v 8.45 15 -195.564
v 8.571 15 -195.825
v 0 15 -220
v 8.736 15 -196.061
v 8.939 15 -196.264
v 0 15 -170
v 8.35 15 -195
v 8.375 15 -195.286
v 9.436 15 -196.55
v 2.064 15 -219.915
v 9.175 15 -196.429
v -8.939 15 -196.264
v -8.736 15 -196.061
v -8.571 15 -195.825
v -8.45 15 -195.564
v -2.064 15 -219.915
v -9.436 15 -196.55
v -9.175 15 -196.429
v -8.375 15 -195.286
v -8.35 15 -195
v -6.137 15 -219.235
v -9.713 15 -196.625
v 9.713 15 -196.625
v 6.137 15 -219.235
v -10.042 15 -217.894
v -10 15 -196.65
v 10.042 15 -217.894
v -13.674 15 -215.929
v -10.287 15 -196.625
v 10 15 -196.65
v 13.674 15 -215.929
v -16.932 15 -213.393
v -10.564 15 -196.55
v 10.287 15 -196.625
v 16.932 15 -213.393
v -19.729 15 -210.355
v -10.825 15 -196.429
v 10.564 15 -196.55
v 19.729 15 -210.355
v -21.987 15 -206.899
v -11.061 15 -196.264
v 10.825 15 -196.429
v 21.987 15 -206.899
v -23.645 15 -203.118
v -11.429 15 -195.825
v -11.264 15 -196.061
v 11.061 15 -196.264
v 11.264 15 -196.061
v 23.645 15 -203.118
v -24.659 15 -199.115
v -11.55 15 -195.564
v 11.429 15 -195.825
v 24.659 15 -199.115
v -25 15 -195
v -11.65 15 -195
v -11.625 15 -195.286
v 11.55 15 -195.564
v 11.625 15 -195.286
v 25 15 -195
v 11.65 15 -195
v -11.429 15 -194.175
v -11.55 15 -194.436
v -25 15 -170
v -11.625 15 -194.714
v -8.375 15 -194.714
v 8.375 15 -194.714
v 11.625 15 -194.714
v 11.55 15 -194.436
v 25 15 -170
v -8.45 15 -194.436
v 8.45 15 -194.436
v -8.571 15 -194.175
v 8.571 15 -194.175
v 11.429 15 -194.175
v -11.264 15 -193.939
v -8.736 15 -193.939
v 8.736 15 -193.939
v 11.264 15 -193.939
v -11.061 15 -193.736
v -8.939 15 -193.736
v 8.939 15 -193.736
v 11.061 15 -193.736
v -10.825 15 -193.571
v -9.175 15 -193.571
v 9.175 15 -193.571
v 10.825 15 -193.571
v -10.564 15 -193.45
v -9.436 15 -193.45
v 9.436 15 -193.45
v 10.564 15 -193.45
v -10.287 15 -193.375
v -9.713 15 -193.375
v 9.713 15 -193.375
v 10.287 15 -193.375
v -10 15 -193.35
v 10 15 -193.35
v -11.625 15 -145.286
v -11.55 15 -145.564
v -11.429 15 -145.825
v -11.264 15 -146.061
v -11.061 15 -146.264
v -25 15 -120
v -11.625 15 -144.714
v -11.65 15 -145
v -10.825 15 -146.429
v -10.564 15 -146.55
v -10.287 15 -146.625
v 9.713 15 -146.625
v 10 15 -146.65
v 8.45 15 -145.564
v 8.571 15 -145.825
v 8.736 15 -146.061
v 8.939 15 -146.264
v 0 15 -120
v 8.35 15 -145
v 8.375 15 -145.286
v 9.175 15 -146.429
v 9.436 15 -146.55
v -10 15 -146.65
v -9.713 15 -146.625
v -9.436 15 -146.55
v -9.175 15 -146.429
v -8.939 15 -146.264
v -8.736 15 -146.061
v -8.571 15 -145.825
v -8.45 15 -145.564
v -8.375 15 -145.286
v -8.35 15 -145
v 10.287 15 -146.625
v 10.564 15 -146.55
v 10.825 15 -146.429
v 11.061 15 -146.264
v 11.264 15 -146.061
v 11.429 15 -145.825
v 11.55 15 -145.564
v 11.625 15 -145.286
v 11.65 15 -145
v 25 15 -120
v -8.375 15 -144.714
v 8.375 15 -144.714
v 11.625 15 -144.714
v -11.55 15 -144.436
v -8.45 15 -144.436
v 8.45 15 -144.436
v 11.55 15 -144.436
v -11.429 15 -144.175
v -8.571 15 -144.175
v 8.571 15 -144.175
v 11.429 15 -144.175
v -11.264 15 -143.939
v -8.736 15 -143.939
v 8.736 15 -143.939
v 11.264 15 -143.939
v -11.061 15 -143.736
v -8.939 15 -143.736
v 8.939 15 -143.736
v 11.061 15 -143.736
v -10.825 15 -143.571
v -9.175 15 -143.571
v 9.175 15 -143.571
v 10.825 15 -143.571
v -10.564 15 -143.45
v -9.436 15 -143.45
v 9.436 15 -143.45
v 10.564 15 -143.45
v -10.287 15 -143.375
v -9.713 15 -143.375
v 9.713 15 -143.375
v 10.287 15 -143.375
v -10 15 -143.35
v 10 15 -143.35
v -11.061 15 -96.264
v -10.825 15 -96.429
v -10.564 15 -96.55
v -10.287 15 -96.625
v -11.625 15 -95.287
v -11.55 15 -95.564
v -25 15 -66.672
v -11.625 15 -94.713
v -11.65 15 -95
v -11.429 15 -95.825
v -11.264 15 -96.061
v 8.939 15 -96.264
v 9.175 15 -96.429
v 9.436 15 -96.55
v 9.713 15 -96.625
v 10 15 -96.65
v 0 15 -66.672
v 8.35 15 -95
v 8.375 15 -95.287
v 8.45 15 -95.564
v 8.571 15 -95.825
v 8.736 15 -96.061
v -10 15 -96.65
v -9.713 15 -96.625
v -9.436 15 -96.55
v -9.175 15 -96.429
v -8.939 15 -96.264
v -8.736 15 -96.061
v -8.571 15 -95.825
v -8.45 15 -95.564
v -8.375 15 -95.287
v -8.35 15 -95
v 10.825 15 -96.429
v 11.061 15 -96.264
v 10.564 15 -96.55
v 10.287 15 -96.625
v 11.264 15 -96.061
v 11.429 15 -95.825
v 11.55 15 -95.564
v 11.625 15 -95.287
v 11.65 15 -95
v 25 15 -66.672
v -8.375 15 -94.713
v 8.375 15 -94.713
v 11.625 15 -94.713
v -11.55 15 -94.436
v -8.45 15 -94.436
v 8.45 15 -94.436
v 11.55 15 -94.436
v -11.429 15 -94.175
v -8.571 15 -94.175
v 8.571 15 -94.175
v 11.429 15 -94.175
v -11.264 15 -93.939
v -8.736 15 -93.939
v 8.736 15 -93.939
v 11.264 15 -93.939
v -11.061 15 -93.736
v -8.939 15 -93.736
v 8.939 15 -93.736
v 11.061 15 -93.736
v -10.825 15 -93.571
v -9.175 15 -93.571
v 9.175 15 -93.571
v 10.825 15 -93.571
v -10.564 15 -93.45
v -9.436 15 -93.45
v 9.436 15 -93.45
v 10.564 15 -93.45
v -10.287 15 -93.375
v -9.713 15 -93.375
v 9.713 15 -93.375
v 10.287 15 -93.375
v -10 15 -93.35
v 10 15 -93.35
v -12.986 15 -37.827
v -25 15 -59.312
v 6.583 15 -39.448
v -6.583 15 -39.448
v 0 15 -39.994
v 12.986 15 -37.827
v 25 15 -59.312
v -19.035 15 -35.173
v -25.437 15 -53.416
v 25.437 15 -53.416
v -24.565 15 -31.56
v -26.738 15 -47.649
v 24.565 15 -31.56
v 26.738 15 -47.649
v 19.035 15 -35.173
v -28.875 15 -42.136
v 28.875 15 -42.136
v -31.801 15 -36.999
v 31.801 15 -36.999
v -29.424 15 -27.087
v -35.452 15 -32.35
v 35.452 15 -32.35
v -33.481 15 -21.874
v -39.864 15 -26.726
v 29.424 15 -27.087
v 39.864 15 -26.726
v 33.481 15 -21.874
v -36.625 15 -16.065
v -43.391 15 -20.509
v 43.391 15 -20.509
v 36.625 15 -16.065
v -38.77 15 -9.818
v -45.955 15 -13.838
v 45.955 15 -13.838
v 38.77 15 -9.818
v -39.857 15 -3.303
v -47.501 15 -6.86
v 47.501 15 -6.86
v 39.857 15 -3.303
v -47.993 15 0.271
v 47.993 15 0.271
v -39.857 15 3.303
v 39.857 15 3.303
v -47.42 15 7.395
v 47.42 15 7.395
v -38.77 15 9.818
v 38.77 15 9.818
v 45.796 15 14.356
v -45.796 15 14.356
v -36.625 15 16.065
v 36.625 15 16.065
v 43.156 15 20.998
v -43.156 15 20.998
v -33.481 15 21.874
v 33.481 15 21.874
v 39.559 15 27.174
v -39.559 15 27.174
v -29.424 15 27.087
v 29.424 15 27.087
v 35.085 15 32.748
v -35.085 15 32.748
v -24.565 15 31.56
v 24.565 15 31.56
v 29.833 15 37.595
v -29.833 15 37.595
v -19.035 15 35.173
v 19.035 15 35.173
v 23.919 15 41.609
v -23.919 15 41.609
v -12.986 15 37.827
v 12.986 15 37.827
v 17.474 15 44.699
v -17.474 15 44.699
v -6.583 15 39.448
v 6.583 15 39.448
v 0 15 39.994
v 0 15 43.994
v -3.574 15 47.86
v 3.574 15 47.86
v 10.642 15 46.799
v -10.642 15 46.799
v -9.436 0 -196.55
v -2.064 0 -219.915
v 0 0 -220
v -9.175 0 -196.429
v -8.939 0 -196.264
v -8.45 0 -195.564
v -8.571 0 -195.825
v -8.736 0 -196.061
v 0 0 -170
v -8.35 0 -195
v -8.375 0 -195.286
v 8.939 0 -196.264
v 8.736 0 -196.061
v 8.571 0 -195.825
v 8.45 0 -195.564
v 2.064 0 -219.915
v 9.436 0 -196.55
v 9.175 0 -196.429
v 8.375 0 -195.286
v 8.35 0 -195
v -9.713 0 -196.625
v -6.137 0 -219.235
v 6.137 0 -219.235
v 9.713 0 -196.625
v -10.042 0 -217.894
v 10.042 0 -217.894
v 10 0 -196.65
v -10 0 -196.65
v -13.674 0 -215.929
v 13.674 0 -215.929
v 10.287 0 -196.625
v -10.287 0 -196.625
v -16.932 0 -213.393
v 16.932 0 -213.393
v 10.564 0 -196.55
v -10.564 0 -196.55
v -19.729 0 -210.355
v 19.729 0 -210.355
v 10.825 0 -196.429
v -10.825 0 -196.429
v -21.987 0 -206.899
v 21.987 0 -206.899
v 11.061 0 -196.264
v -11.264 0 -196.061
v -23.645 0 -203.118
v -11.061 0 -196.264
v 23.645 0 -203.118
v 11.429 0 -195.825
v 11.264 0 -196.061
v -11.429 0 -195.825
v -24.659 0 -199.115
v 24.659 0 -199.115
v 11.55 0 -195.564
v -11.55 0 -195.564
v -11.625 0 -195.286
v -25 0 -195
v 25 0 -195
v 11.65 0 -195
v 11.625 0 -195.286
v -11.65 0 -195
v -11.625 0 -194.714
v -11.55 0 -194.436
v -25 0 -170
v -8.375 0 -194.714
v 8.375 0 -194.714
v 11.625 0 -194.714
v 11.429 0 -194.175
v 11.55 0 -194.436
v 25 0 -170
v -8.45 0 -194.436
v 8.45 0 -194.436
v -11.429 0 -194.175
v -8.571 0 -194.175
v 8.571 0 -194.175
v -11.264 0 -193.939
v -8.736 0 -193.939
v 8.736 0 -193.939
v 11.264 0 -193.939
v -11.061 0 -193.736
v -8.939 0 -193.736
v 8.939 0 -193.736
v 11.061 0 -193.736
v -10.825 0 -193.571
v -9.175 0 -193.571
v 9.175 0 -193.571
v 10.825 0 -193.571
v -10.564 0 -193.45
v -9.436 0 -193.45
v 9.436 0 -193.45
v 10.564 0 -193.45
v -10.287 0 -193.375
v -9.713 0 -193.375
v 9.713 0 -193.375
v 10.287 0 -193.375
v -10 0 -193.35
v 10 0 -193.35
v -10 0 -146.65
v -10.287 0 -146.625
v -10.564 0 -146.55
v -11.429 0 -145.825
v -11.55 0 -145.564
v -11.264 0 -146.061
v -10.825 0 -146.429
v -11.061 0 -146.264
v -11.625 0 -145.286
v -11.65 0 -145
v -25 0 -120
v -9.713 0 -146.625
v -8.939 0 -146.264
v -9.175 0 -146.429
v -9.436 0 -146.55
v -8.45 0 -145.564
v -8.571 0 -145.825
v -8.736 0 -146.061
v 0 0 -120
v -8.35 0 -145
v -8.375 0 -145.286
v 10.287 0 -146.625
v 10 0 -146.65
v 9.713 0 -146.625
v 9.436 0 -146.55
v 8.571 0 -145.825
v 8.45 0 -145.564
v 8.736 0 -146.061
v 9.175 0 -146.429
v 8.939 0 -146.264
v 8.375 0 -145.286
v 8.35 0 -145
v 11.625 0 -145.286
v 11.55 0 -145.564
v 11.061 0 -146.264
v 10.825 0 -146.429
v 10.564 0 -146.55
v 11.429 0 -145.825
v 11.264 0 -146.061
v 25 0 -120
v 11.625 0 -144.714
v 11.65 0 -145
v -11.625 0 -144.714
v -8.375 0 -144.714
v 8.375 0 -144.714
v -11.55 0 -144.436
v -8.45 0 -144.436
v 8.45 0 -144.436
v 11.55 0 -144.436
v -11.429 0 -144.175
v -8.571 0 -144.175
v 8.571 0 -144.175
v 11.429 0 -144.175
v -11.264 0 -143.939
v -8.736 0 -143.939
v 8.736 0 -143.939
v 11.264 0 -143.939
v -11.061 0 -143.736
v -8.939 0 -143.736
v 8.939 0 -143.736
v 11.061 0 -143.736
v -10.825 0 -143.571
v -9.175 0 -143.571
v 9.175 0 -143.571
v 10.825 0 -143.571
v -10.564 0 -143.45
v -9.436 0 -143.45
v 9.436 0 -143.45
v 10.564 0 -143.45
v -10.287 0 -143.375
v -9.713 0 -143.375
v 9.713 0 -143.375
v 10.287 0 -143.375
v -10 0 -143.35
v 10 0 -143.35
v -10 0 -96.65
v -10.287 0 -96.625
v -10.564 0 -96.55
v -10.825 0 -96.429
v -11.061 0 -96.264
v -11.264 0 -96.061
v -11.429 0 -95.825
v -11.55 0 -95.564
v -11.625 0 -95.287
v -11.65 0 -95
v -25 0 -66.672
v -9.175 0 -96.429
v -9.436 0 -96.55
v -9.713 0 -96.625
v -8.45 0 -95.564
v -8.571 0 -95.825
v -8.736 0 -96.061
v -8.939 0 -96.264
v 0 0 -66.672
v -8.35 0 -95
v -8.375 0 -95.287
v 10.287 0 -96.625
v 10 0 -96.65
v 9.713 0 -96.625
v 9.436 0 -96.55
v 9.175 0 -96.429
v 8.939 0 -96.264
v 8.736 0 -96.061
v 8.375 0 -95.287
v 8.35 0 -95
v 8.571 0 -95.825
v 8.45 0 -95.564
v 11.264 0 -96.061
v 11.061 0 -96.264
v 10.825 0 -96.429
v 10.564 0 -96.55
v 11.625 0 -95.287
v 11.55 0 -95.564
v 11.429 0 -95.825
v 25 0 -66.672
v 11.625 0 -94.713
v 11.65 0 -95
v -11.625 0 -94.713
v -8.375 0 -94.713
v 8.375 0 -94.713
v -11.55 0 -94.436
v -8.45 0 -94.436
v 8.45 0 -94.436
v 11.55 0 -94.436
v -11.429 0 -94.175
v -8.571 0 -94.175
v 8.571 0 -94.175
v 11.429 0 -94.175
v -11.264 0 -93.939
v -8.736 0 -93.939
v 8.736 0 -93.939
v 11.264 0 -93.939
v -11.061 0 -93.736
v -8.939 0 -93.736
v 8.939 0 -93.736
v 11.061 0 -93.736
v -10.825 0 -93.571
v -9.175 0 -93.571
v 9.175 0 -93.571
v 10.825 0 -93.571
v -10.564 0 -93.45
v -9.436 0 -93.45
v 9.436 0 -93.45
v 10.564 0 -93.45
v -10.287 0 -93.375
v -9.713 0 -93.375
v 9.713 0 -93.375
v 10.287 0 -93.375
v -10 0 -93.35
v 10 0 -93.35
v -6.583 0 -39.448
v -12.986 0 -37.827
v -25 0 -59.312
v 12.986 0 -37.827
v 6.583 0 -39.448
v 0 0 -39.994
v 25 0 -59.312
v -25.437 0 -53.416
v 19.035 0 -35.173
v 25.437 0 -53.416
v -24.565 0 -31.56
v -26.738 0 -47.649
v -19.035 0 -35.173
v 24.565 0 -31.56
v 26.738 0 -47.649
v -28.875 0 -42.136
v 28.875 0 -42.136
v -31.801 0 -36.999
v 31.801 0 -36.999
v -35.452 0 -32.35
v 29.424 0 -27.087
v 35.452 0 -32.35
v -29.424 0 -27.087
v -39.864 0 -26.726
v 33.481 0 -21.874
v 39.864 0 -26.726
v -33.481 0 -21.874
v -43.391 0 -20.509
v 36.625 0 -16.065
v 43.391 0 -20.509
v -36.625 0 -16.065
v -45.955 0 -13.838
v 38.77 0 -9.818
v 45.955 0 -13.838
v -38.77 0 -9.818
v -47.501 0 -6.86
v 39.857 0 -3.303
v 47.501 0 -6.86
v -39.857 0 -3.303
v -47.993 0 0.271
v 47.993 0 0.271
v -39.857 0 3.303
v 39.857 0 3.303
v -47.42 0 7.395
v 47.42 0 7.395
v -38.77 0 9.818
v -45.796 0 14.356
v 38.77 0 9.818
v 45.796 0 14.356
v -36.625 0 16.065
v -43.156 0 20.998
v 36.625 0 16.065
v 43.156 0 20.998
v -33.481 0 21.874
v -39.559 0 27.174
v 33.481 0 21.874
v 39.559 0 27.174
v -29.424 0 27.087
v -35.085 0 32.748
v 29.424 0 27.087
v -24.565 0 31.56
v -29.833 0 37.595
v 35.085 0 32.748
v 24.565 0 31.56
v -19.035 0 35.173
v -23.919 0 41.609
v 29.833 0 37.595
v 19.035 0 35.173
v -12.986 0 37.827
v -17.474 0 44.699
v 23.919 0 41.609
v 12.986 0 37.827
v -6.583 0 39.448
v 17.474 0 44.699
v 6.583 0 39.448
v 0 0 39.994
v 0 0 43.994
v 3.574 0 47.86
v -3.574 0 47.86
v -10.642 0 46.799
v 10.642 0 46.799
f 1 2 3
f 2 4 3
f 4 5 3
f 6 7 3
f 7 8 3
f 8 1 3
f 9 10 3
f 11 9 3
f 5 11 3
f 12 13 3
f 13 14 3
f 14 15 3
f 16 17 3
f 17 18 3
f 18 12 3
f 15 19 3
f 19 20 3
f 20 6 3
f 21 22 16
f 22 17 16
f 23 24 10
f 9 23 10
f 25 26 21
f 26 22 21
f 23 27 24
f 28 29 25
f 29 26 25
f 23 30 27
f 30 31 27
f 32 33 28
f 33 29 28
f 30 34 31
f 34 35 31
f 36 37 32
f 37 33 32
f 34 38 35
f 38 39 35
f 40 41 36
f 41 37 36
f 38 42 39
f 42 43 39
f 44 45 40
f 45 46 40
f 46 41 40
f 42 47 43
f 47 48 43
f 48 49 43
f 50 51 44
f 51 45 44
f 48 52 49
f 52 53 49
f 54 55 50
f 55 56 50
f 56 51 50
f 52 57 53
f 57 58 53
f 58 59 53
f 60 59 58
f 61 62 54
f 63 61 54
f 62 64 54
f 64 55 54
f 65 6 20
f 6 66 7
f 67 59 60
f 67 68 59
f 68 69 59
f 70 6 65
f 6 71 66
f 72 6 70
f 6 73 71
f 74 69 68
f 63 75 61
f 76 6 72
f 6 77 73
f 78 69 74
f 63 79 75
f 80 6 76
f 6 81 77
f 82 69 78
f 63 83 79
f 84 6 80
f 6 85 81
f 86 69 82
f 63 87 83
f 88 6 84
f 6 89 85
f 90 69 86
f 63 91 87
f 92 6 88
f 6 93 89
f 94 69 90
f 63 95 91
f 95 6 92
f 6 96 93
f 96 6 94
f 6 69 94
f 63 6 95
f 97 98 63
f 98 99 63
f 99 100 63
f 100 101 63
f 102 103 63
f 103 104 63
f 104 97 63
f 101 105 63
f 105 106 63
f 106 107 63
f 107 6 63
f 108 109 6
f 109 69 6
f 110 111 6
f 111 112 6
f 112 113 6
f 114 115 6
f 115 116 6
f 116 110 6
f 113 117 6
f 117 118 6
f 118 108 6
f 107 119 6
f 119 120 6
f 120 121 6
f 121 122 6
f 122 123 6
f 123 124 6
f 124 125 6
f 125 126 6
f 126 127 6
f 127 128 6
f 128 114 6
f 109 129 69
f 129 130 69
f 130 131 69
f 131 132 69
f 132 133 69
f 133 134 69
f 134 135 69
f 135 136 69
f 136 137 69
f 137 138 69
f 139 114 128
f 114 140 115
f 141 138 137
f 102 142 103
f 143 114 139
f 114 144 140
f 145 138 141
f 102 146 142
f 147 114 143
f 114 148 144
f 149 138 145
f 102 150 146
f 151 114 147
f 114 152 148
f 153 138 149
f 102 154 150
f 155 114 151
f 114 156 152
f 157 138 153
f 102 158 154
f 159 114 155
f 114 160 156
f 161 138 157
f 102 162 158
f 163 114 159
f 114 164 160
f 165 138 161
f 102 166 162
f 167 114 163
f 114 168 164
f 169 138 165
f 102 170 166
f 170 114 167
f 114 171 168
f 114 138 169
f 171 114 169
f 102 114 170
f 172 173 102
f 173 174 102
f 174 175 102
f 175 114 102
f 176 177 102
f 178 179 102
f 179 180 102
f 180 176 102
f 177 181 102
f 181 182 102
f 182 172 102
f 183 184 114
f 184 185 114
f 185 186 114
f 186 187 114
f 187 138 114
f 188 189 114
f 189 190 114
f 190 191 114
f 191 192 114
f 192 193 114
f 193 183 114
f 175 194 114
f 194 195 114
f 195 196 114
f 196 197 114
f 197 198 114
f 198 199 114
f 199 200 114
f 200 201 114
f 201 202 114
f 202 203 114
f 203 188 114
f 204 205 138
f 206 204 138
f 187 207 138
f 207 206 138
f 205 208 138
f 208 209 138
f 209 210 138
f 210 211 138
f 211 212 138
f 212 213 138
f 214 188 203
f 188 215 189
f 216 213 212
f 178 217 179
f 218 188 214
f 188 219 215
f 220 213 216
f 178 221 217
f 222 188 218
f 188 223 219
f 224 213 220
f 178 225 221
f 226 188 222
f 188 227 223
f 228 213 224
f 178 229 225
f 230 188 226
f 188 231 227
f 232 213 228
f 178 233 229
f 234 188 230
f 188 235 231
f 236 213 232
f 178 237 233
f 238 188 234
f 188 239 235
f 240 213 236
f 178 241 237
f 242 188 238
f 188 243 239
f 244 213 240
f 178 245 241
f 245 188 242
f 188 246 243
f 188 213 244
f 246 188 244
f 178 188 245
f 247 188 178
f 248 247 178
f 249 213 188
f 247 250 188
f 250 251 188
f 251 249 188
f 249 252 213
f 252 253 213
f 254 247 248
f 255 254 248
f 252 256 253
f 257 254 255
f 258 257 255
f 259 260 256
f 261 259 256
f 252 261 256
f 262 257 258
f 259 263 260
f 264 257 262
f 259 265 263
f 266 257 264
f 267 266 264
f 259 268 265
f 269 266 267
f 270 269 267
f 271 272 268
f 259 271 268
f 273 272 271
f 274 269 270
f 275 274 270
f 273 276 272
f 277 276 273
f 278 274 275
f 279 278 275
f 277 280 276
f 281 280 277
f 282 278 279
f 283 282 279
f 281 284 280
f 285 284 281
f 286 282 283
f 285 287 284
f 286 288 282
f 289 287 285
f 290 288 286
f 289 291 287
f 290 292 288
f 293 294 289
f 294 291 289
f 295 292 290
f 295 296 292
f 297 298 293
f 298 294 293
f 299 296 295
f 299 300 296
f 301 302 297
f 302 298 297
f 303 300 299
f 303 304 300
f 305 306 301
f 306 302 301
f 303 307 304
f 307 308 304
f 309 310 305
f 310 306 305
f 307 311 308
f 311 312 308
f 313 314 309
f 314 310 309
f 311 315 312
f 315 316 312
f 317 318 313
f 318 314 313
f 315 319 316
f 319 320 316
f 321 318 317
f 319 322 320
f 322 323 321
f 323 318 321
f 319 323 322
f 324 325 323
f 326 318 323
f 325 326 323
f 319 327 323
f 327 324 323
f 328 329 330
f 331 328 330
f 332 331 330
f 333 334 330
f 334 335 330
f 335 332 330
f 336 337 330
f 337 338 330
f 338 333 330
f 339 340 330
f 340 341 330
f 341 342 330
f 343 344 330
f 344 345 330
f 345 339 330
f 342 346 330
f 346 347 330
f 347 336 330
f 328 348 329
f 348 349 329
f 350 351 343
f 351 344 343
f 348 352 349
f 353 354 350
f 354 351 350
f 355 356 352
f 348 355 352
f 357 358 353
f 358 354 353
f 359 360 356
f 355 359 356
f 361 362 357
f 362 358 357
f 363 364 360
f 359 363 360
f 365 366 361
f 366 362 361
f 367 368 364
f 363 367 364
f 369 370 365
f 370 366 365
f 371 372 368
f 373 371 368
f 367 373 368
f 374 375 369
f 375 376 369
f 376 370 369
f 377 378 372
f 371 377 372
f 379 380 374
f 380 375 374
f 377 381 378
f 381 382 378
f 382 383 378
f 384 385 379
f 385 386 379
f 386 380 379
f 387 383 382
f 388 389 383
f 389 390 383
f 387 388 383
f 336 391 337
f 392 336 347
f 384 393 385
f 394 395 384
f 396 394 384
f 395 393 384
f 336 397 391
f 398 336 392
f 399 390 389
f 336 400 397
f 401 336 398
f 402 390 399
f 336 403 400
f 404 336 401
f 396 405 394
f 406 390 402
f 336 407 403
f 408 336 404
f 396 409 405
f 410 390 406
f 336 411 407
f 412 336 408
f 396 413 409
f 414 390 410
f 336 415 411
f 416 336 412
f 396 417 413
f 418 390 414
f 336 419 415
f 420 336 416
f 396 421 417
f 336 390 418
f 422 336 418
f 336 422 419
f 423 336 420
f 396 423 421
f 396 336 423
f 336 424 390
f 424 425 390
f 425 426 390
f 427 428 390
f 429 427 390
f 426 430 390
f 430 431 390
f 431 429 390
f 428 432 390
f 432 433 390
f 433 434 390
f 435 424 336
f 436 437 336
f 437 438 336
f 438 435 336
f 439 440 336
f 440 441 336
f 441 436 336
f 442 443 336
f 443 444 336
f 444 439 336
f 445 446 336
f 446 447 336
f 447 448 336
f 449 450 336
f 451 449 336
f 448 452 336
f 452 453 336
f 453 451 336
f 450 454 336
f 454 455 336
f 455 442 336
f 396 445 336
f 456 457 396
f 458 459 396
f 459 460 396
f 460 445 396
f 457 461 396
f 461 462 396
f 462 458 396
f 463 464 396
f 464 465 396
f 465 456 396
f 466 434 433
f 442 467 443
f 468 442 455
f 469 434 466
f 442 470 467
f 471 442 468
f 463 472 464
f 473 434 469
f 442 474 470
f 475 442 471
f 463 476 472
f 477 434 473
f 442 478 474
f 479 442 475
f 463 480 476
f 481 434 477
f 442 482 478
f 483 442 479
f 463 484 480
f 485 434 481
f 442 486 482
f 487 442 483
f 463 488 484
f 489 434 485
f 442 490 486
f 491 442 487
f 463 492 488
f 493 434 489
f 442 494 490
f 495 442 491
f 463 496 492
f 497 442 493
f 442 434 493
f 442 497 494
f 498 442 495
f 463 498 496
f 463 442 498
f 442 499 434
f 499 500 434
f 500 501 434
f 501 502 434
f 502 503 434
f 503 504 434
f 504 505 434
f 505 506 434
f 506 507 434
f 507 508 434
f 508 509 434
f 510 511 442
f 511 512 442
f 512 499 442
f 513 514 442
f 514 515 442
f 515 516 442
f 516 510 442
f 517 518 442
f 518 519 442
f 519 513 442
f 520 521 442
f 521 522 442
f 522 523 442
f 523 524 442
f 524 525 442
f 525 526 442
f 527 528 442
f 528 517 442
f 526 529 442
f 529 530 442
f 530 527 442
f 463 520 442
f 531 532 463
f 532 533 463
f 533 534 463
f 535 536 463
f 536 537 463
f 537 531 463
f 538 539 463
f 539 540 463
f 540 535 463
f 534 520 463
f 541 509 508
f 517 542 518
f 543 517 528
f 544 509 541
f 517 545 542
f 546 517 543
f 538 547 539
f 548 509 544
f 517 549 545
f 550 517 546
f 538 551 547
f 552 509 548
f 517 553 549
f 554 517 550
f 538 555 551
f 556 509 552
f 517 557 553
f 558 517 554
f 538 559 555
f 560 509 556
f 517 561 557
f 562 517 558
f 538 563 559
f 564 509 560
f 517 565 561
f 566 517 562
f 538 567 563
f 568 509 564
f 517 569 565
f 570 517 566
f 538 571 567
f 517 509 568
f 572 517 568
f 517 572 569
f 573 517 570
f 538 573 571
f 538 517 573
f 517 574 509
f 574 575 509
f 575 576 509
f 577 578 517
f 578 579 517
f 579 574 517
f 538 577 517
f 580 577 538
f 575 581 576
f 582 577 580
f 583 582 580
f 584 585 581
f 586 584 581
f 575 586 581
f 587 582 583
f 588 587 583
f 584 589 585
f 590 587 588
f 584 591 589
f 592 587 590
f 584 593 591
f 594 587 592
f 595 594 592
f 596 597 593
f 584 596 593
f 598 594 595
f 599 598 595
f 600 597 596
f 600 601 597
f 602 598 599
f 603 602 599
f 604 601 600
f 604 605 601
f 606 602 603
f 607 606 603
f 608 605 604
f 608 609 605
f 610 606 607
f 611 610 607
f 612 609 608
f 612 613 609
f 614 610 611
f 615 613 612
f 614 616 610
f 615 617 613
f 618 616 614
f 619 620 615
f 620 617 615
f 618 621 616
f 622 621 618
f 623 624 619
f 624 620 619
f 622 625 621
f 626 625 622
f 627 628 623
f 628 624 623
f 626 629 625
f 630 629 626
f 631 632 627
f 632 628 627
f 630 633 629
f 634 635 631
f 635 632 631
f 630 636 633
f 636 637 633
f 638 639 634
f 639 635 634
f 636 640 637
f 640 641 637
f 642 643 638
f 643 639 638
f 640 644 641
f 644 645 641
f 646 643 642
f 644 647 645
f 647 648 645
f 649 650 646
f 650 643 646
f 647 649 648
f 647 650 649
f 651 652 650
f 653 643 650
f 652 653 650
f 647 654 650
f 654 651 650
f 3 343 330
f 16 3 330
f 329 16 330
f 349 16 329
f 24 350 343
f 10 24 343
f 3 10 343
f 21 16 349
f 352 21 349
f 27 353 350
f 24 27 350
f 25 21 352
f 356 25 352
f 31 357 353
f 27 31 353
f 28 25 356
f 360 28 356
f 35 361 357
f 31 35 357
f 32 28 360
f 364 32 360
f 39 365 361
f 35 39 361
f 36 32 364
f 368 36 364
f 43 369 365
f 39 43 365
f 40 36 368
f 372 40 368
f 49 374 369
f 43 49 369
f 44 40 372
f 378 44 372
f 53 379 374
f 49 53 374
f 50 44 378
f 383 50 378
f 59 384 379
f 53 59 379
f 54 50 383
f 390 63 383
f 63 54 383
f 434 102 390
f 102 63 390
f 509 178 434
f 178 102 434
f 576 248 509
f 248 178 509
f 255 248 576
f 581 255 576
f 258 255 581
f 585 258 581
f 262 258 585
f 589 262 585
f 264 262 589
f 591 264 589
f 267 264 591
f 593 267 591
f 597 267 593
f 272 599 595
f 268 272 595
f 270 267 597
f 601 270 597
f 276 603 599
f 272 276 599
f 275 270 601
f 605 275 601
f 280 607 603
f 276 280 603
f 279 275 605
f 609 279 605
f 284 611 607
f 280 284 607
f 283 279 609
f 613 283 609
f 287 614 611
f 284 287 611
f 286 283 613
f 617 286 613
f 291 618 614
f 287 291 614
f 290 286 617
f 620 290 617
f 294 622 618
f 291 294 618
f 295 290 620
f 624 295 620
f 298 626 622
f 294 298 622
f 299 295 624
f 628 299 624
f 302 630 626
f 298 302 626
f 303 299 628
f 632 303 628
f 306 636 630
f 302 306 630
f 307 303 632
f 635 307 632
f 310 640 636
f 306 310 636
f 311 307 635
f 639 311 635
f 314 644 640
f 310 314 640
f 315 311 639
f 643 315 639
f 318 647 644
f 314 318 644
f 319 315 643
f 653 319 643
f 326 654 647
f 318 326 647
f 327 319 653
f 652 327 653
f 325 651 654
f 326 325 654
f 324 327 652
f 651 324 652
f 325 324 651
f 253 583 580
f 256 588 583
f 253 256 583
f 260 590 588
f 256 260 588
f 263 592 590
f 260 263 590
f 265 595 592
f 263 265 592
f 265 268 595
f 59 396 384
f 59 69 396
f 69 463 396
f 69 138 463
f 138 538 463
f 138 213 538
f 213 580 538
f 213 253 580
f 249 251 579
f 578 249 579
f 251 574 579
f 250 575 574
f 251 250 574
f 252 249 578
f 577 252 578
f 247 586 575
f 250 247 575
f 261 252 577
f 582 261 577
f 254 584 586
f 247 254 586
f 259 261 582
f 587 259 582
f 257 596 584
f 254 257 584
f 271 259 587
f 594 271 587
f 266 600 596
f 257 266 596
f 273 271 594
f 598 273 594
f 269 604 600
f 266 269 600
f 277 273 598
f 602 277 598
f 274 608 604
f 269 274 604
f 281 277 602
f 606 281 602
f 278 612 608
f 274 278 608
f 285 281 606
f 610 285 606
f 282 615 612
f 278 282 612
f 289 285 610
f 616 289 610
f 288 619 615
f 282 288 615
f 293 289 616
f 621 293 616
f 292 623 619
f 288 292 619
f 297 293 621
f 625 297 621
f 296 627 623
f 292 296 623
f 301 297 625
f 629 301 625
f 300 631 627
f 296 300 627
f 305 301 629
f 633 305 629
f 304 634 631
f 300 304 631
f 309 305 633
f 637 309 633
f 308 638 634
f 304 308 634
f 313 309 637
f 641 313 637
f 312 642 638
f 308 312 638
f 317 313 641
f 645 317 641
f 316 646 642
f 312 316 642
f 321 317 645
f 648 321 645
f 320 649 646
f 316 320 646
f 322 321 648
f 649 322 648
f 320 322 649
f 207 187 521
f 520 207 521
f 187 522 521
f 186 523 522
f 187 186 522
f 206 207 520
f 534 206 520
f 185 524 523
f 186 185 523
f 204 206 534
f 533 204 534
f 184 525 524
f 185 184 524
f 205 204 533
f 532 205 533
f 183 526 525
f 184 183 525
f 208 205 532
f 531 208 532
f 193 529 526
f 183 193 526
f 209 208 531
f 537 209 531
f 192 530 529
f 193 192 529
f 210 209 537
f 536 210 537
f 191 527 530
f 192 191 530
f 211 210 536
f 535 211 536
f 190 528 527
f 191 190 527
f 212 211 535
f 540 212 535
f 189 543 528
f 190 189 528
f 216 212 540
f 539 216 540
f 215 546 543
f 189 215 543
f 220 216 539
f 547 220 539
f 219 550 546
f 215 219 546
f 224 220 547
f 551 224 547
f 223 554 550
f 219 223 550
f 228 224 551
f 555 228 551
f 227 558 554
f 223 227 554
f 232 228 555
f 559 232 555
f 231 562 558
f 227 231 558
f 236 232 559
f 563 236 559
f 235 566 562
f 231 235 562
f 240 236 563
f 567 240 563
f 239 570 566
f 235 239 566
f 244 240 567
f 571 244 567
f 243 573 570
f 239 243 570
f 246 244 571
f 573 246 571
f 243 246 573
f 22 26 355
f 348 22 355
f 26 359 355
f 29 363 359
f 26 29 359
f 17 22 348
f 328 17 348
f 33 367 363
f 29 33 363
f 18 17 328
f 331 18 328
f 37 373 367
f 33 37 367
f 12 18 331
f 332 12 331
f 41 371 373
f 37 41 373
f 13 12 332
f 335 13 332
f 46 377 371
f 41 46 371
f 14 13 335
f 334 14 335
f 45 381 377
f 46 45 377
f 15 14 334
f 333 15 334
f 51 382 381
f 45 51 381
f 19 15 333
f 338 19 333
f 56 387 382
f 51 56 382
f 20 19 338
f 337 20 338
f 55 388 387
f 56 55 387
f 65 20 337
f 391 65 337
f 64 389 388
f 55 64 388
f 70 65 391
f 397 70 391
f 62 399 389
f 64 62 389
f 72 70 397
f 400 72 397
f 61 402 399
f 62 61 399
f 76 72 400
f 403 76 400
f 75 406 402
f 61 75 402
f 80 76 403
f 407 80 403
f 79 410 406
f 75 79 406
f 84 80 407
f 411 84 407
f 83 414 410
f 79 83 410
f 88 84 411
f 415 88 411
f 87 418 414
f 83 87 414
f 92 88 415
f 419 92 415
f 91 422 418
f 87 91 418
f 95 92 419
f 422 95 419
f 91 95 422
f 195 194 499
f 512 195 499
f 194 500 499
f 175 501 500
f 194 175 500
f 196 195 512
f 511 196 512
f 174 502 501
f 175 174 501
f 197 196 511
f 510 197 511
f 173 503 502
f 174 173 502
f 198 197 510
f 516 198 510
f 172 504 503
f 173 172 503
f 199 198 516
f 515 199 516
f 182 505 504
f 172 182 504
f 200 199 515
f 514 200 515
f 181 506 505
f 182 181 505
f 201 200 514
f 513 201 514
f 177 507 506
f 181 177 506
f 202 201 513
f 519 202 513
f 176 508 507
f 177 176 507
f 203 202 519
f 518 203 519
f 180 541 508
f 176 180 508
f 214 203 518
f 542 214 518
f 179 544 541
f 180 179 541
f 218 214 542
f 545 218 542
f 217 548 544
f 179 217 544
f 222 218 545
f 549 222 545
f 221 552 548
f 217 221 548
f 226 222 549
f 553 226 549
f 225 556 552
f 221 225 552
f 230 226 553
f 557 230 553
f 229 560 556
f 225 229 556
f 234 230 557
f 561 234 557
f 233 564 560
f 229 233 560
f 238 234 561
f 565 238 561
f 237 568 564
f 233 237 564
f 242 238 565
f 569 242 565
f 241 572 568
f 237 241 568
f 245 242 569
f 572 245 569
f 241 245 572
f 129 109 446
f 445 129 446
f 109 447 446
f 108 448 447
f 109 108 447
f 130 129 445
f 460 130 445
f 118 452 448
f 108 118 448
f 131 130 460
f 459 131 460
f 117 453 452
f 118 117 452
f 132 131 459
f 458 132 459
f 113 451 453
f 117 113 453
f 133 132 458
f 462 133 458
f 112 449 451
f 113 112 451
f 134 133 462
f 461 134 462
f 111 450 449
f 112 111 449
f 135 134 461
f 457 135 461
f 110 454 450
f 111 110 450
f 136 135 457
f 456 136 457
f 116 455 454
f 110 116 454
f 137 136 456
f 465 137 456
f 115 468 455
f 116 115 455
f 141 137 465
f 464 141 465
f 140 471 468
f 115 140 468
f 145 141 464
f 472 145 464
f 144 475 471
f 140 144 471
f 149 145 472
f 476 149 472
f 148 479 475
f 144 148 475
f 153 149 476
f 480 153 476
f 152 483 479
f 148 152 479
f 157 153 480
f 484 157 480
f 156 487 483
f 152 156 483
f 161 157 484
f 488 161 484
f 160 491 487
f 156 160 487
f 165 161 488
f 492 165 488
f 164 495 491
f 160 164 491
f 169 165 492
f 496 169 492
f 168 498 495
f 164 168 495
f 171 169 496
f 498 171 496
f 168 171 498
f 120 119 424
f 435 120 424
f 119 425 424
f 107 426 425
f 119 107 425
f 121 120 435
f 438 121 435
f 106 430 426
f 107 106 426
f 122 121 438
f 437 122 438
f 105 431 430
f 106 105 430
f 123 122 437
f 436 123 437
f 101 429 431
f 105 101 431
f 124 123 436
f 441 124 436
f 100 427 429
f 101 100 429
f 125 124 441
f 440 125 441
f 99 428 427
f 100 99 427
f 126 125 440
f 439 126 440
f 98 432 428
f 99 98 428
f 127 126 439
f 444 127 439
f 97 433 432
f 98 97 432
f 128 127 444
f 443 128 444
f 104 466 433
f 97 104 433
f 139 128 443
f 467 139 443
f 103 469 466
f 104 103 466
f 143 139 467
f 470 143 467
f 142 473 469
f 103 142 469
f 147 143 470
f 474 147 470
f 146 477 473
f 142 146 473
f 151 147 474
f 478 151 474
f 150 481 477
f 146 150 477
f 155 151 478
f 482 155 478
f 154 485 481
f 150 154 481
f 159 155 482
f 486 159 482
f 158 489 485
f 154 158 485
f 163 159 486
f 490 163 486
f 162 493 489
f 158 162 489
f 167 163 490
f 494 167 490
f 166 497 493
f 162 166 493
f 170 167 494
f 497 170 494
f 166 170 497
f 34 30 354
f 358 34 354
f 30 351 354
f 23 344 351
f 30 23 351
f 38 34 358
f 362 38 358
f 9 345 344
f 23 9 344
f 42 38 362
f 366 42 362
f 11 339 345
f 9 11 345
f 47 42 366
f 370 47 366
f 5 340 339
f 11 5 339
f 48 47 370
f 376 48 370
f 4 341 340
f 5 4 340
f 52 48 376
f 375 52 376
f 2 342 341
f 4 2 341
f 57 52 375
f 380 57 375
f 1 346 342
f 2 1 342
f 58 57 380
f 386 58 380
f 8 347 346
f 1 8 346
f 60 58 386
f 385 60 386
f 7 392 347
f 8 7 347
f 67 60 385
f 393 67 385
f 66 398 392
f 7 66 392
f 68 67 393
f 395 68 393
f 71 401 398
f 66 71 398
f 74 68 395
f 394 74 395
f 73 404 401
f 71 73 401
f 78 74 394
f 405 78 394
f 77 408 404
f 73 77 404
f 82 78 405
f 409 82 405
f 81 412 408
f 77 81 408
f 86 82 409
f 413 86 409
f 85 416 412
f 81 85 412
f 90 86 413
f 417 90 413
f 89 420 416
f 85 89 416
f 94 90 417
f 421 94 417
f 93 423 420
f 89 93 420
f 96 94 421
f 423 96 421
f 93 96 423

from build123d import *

# Parameters (mm, degrees)
SKETCH1_R           = 39.9935
BOSS_EXTRUDE1_DEPTH = 15
SKETCH2_R           = 1.65
CUT_EXTRUDE1_DEPTH  = 15


with BuildPart() as part:
    # Sketch1 → Boss-Extrude1 (new body)
    with BuildSketch(Plane(origin=(0, 0, 0), x_dir=(1, 0, 0), z_dir=(0, 1, 0))):
        with BuildLine():
            Line((25, 59.311516944), (25, 195))
            ThreePointArc((25, 195), (0, 220), (-25, 195))
            Line((-25, 195), (-25, 59.311516944))
            ThreePointArc((-25, 59.311516944), (-27.704521174, 44.853050249), (-35.452362959, 32.349745021))
            ThreePointArc((-35.452362959, 32.349745021), (0, -47.9935), (35.452362959, 32.349745021))
            ThreePointArc((35.452362959, 32.349745021), (27.704521174, 44.853050249), (25, 59.311516944))
        make_face()
        with Locations(Location((0, 0, 0), (0, 0, 270))):
            Circle(SKETCH1_R, mode=Mode.SUBTRACT)
    extrude(amount=BOSS_EXTRUDE1_DEPTH)

    # Sketch2 → Cut-Extrude1 (cut)
    with BuildSketch(Plane.XZ):
        with Locations(Location((10, -95, 0), (0, 0, 270))):
            Circle(SKETCH2_R)
        with Locations(Location((-10, -95, 0), (0, 0, 270))):
            Circle(SKETCH2_R)
        with Locations(Location((10, -145, 0), (0, 0, 270))):
            Circle(SKETCH2_R)
        with Locations(Location((-10, -145, 0), (0, 0, 270))):
            Circle(SKETCH2_R)
        with Locations(Location((10, -195, 0), (0, 0, 270))):
            Circle(SKETCH2_R)
        with Locations(Location((-10, -195, 0), (0, 0, 270))):
            Circle(SKETCH2_R)
    extrude(amount=-CUT_EXTRUDE1_DEPTH, mode=Mode.SUBTRACT)


solid = part.part
